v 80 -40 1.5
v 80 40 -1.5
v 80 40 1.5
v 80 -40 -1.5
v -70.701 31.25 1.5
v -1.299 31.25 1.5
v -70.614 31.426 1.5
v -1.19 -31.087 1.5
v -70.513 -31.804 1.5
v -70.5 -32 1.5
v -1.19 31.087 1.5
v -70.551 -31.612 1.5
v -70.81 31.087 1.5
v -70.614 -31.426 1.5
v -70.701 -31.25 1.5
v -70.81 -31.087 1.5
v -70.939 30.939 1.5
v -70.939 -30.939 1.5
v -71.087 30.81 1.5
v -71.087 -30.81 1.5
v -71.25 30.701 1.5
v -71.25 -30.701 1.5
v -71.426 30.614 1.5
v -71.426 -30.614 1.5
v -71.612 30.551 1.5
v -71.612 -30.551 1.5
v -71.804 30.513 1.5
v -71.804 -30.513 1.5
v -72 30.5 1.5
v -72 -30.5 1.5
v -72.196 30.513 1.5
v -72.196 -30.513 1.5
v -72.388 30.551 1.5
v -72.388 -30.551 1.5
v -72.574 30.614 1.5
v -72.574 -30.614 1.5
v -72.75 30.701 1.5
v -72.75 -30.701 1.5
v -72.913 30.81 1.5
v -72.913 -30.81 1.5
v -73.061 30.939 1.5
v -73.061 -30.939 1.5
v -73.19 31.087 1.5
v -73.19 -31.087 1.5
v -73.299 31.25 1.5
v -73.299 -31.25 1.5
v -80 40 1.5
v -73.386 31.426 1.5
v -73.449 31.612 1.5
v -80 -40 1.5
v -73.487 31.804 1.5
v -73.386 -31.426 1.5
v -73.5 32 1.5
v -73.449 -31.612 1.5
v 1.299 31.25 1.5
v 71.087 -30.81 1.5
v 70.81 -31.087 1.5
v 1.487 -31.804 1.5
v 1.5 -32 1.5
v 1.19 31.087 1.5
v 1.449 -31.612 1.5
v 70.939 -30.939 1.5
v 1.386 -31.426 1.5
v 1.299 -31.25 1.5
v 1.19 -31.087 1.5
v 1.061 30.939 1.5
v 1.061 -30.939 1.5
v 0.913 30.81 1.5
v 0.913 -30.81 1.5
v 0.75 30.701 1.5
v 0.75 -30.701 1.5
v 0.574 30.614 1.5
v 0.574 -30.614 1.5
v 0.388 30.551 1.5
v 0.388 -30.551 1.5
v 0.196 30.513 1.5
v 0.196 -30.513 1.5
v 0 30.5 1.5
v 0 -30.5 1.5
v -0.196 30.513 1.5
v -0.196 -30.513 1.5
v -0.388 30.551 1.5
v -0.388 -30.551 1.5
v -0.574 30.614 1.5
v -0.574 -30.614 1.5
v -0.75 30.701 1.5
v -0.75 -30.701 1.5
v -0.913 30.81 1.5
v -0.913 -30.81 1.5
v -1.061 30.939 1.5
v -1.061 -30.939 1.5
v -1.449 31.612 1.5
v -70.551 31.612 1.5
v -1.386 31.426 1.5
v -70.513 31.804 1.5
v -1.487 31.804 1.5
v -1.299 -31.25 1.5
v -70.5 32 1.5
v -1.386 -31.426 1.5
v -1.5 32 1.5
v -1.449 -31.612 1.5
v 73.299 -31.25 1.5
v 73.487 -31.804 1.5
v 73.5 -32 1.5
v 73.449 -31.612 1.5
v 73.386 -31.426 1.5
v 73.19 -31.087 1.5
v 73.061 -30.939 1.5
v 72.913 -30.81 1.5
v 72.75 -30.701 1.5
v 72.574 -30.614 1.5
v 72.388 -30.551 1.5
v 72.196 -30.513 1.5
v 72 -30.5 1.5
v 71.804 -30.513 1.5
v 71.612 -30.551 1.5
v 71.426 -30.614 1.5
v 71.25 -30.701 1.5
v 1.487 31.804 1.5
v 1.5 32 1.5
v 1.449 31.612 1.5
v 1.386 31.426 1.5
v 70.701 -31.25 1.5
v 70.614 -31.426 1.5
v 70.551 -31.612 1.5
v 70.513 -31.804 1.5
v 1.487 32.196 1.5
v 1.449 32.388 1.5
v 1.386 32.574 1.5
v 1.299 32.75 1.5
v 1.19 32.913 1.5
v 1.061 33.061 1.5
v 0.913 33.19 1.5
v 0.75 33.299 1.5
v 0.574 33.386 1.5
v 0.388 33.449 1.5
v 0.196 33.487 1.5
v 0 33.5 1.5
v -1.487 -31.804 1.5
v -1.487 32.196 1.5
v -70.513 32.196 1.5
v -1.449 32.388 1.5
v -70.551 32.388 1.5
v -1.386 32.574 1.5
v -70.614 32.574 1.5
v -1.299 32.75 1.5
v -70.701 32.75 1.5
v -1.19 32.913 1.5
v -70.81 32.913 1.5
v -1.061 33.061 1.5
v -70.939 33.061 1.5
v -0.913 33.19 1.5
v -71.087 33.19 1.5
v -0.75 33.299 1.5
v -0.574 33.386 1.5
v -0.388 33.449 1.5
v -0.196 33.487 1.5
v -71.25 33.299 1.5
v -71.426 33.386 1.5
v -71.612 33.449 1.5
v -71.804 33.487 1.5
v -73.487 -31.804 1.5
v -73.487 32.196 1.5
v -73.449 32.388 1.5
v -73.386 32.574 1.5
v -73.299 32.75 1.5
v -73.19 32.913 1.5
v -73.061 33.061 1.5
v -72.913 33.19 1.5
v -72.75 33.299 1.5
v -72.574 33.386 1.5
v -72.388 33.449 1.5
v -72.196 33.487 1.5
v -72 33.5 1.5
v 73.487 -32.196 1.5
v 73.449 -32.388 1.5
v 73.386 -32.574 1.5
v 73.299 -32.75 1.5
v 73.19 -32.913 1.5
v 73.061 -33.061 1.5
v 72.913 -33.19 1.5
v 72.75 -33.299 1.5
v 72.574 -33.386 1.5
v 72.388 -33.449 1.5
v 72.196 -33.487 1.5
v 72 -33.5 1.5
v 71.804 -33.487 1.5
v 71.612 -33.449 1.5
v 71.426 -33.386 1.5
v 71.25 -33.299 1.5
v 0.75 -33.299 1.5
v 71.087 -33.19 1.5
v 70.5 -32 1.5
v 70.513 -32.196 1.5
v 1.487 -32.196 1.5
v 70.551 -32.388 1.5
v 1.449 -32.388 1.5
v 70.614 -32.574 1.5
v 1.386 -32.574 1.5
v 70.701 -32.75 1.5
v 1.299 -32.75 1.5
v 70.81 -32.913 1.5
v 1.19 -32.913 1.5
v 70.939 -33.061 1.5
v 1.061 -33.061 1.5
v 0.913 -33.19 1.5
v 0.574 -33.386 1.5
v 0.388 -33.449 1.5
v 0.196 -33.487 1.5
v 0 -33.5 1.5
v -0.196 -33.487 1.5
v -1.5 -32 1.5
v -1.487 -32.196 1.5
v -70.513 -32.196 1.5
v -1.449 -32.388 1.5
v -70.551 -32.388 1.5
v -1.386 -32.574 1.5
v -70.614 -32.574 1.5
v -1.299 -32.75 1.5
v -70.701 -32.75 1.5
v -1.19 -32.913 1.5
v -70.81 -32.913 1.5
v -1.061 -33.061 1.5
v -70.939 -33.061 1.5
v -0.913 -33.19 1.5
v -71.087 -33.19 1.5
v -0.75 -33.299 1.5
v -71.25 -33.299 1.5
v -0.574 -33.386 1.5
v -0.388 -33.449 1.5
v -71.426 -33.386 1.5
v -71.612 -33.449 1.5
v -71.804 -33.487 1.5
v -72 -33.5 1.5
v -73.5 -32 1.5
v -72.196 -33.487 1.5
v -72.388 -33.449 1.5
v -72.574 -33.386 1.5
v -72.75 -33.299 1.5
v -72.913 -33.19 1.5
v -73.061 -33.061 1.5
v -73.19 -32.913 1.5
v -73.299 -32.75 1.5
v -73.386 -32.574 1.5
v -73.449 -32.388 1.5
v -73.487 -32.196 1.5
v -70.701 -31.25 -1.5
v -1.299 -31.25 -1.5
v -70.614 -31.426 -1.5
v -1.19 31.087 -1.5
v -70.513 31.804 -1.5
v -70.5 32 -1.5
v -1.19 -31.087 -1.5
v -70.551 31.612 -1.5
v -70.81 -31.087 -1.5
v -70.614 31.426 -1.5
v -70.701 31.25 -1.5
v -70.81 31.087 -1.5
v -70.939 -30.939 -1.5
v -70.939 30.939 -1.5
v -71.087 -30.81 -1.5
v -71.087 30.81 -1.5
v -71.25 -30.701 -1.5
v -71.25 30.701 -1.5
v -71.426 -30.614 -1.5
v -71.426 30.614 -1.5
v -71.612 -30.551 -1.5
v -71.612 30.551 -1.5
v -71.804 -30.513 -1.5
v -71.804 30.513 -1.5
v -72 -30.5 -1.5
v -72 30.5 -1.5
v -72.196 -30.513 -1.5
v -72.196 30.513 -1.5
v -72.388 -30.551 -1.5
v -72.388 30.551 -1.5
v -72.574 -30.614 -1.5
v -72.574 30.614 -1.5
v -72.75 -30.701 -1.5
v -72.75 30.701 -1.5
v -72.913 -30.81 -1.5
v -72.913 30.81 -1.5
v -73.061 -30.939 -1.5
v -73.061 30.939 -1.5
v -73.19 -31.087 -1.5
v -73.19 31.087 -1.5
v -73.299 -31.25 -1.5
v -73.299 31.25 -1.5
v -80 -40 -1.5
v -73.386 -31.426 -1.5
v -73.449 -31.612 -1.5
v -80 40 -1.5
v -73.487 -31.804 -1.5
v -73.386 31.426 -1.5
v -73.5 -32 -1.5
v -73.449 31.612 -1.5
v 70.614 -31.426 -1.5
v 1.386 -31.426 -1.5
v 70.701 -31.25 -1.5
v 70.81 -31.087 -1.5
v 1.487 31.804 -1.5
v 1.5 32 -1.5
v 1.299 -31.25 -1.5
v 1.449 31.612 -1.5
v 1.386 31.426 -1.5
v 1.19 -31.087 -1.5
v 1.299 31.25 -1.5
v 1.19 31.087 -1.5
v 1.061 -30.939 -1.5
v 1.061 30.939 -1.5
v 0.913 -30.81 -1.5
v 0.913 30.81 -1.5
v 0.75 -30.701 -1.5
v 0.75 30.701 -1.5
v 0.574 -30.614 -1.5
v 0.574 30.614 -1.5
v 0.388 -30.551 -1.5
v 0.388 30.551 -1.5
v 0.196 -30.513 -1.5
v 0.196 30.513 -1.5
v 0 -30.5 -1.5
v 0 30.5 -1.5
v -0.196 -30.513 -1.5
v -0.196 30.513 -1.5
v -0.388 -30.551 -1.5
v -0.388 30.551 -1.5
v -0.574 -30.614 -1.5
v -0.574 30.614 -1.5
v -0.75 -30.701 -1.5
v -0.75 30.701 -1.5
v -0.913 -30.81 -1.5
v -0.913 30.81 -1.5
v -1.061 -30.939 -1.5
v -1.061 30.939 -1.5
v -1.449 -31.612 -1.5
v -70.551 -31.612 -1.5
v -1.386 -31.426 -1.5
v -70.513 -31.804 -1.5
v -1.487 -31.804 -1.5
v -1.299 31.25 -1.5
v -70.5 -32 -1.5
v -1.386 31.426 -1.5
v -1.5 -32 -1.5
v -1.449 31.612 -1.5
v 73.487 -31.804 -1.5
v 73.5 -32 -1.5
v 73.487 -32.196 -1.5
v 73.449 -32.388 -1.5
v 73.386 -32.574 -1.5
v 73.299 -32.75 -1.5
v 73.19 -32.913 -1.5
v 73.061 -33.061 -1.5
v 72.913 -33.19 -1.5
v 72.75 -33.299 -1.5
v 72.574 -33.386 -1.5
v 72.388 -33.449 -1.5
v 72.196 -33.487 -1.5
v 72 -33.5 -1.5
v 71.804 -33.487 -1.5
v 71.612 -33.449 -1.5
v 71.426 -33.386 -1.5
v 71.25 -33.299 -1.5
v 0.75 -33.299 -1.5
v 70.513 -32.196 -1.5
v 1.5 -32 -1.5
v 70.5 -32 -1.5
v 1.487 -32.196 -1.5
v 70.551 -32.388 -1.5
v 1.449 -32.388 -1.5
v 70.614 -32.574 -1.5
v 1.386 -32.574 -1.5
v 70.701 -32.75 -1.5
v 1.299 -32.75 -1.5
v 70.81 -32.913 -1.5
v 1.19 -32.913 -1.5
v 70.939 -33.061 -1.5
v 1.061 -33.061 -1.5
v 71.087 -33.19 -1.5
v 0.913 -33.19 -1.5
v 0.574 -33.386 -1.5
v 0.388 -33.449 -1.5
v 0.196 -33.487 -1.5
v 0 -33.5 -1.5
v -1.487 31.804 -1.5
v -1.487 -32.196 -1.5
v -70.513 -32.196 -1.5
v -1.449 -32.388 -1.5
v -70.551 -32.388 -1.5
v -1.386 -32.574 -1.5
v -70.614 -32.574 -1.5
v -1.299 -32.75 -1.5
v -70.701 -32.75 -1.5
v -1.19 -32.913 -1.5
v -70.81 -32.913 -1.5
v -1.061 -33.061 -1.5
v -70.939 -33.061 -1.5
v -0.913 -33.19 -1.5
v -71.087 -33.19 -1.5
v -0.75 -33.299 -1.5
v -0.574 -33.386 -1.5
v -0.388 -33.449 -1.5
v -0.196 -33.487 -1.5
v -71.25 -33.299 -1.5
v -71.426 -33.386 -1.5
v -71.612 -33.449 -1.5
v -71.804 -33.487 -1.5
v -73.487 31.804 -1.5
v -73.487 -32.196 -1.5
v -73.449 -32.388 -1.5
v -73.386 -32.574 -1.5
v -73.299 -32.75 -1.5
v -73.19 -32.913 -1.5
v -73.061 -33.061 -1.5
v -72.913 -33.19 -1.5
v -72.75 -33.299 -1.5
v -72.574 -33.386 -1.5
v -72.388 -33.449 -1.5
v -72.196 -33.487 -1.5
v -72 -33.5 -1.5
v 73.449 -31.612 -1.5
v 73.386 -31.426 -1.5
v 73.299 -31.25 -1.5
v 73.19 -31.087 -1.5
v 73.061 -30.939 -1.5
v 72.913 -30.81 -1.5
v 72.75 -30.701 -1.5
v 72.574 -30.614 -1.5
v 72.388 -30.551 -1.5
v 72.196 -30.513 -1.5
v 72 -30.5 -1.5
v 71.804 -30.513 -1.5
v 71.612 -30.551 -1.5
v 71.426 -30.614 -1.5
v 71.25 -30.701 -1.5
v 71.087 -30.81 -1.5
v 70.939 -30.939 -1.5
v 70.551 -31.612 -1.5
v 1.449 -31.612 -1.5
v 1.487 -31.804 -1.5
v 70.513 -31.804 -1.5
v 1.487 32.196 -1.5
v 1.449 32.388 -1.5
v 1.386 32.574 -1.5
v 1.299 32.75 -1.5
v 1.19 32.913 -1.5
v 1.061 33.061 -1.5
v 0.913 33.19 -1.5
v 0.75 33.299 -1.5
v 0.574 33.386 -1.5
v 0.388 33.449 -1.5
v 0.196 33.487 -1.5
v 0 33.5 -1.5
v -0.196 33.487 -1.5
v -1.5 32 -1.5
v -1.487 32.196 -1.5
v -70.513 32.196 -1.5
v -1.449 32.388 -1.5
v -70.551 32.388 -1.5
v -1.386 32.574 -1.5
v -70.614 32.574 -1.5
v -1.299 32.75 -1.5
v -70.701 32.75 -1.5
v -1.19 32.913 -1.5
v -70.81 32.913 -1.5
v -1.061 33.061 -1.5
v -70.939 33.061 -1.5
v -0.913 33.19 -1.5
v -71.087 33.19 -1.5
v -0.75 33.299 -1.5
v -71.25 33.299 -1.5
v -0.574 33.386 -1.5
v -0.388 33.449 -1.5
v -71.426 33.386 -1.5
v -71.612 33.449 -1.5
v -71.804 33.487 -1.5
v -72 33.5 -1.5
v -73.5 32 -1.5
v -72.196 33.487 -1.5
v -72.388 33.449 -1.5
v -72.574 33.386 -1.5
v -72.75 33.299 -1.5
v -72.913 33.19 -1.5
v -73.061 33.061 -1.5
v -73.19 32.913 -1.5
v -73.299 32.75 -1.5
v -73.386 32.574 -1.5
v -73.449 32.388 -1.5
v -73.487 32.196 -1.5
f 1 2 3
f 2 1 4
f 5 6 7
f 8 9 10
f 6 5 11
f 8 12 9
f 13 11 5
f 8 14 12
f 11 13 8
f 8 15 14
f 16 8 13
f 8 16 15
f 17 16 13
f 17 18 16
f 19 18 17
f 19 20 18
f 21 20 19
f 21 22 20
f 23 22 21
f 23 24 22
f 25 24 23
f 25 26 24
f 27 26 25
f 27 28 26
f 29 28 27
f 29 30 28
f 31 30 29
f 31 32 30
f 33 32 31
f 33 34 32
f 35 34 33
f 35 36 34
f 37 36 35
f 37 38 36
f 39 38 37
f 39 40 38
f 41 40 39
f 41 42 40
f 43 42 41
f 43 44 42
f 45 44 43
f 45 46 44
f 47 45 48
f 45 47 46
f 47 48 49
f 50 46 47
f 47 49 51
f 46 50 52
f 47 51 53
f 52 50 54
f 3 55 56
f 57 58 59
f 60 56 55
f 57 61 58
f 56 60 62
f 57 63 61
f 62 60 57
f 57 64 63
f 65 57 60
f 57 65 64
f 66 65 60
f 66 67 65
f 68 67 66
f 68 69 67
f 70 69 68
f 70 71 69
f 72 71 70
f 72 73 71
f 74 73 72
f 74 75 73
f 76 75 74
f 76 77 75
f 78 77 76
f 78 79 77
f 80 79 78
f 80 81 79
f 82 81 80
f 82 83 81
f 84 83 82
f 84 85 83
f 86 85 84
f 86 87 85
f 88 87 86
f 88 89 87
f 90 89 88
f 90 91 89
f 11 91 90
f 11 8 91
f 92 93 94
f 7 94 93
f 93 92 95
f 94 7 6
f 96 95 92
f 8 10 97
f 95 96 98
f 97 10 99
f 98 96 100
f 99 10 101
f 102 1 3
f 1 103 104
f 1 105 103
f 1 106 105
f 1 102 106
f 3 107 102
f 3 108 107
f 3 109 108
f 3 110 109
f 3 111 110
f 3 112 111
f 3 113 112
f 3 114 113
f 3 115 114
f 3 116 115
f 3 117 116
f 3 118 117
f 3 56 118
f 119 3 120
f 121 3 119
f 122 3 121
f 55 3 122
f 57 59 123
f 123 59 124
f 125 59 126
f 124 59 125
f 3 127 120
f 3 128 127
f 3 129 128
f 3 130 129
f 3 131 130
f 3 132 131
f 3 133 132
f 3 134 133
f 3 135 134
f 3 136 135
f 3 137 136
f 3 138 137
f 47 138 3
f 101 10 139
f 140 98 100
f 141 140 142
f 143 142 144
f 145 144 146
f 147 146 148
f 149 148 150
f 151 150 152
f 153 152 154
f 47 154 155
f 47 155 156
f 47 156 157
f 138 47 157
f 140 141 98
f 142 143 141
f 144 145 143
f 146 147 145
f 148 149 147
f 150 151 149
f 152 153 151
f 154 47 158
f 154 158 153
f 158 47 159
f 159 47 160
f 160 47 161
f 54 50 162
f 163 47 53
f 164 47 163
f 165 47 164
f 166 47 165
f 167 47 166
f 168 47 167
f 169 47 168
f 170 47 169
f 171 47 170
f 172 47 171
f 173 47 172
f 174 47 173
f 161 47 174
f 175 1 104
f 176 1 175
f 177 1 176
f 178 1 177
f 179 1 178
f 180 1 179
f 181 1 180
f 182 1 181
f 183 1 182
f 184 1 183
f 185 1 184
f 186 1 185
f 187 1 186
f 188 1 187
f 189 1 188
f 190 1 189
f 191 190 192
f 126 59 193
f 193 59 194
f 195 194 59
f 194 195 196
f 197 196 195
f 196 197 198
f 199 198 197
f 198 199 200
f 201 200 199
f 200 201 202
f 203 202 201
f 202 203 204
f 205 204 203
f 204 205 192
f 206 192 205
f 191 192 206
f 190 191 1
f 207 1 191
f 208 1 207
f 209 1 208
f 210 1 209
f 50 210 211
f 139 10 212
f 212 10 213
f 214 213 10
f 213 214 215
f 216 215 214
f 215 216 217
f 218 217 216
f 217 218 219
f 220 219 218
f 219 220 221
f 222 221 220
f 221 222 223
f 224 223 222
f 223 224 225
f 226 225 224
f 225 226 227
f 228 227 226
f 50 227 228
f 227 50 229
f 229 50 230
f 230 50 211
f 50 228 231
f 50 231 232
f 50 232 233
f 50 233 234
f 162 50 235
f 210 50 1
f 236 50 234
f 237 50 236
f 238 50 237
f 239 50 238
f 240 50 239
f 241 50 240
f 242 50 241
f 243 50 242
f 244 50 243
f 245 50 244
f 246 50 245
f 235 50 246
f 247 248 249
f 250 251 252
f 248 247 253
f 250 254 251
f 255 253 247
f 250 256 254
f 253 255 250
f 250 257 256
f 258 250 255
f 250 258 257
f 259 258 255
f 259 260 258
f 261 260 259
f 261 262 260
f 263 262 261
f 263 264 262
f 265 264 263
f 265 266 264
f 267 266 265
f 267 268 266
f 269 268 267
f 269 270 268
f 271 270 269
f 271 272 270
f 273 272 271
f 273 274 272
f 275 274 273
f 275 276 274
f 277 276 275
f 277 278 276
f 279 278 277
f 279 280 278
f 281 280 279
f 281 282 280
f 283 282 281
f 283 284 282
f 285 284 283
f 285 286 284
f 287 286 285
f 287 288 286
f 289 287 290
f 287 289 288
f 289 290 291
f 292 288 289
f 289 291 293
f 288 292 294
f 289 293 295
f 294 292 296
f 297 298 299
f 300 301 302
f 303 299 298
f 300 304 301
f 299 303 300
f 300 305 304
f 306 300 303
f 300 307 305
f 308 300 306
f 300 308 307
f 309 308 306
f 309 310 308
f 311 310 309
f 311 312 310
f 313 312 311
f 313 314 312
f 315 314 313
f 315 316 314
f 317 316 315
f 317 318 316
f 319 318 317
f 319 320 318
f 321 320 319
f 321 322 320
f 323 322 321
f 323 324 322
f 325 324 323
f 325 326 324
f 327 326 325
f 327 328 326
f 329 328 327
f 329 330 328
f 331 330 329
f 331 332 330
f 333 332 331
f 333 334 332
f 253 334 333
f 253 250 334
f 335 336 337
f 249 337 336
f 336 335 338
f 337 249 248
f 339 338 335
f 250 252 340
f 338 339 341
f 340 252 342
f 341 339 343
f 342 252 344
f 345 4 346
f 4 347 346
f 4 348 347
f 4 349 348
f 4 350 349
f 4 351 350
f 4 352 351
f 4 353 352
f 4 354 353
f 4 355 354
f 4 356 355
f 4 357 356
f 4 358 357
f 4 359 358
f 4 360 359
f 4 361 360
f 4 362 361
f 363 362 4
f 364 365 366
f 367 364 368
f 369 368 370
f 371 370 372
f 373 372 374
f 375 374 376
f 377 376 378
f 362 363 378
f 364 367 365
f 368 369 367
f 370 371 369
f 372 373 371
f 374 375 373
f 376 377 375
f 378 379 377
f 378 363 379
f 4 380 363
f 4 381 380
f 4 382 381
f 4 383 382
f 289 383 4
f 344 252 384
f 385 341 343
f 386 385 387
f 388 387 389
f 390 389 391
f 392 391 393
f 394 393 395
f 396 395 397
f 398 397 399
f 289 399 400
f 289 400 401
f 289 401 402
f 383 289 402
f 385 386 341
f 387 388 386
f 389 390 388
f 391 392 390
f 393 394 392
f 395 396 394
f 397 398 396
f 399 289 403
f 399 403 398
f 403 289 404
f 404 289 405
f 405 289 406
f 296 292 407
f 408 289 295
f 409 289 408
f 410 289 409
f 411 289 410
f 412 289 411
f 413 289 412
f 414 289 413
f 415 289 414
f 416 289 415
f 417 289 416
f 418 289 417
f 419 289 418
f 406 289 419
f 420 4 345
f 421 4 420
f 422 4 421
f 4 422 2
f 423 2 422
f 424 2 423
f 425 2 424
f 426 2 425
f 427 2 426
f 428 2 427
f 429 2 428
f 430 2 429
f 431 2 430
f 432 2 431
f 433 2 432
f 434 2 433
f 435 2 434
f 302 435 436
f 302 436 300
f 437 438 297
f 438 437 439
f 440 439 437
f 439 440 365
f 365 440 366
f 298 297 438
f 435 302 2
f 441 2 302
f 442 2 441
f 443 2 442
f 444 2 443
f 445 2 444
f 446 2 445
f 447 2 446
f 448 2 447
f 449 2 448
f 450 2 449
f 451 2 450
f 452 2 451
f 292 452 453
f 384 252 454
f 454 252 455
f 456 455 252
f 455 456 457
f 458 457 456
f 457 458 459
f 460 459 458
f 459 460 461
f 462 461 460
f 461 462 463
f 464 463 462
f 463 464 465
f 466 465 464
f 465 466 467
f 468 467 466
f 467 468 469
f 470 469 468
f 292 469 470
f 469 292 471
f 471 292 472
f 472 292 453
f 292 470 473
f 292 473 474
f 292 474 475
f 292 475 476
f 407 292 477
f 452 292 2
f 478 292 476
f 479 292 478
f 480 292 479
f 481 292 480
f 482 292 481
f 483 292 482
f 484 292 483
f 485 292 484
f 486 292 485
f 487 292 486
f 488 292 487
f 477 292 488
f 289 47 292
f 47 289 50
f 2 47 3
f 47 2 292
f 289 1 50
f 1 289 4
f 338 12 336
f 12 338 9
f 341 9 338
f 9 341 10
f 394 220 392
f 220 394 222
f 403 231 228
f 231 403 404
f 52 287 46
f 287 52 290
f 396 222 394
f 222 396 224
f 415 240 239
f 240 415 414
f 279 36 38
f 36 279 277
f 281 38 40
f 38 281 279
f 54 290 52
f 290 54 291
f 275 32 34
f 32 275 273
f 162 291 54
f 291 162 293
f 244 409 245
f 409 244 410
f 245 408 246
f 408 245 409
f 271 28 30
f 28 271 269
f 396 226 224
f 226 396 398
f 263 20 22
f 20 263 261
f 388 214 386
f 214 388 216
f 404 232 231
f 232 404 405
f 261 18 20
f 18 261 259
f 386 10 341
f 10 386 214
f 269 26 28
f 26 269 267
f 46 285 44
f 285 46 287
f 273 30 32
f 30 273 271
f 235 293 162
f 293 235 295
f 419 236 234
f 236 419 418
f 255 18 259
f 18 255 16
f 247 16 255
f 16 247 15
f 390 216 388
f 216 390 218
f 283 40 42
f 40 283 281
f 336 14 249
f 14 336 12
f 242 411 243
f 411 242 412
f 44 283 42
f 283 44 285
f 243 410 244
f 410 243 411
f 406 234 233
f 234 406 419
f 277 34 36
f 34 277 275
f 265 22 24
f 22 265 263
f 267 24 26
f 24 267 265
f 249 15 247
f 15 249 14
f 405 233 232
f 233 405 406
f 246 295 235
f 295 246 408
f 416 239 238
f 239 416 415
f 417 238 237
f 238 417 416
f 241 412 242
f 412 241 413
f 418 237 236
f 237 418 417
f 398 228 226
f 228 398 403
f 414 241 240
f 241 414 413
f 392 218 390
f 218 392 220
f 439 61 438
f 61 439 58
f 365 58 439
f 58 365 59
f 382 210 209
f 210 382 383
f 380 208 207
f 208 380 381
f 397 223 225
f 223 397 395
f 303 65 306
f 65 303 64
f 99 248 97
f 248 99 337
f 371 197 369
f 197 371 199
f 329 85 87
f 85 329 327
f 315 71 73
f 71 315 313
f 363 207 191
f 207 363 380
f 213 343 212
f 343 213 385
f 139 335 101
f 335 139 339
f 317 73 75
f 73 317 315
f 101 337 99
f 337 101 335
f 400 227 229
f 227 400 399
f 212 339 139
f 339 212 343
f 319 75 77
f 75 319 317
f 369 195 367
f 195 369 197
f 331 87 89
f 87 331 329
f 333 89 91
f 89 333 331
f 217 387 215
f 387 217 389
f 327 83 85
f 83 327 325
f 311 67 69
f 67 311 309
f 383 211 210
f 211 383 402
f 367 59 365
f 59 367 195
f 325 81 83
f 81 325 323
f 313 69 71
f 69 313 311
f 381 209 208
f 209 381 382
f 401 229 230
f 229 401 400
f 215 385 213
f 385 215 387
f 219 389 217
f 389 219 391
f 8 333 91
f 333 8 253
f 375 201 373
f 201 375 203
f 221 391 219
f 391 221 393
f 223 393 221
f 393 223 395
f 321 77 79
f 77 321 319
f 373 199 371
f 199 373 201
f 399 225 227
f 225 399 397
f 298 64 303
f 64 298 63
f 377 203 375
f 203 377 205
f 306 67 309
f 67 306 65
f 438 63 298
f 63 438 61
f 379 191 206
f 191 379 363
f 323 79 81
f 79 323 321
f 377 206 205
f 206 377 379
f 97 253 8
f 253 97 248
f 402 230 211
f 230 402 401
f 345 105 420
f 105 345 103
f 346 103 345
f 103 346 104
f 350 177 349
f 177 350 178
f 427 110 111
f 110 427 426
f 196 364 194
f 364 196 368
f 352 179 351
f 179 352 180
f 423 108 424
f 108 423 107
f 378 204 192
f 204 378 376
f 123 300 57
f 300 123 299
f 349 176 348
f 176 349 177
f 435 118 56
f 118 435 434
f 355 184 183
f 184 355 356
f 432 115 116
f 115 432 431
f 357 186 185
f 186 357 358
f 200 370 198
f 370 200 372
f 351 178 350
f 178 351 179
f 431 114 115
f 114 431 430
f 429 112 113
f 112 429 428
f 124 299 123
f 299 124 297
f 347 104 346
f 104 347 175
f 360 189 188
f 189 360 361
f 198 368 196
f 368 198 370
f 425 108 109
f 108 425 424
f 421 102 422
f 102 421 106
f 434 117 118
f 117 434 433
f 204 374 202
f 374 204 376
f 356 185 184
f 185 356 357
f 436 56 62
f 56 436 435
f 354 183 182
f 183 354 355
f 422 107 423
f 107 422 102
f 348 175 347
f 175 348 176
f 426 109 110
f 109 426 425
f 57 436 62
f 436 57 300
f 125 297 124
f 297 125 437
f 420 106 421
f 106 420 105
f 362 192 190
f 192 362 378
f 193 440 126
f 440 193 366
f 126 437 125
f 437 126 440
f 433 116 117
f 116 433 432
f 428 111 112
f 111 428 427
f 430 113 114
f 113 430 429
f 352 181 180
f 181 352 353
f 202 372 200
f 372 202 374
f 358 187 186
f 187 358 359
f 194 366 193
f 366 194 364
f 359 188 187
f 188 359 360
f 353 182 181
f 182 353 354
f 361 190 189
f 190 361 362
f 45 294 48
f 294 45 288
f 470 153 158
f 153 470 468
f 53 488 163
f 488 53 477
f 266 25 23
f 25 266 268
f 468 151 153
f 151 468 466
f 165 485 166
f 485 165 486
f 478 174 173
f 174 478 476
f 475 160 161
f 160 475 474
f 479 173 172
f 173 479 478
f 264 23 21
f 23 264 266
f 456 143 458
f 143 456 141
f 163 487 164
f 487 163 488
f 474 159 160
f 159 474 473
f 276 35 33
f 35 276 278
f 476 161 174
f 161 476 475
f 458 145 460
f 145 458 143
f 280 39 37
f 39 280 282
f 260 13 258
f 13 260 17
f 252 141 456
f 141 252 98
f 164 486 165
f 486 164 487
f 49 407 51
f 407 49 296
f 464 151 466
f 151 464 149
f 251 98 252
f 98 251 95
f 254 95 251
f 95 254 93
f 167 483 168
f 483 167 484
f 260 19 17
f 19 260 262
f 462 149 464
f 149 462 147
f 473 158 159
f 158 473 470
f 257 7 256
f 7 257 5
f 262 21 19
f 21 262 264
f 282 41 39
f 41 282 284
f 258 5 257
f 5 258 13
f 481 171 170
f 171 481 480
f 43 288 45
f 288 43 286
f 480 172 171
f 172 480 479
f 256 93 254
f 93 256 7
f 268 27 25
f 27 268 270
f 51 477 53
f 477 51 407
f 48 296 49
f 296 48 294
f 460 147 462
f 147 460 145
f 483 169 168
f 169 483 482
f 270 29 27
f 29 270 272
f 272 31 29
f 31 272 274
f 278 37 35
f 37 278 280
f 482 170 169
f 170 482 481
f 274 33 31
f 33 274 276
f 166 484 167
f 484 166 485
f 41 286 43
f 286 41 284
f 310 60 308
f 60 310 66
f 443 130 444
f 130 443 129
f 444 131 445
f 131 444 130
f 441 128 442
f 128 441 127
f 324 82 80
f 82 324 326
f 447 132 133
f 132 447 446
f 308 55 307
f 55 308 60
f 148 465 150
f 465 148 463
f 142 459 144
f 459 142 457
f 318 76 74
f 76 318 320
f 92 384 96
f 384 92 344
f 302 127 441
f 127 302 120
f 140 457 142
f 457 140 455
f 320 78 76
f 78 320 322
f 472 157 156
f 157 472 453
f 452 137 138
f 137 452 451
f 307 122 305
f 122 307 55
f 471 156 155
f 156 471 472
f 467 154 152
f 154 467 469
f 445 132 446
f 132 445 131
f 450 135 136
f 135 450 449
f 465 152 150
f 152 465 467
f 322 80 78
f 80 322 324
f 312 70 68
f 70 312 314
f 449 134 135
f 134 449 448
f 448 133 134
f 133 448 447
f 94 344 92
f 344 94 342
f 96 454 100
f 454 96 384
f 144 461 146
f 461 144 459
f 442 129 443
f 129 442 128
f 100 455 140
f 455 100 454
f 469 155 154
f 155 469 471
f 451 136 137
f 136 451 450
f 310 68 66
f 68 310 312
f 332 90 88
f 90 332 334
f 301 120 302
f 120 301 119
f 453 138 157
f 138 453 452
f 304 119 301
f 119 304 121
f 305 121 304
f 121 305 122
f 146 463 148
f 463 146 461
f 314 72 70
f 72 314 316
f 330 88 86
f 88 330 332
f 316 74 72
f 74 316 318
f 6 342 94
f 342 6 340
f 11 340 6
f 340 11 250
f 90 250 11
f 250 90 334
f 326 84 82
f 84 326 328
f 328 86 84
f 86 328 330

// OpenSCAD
// ========================================
// a 16 x 8 x 0.3 cm plate with five 0.3 cm holes
// NeuroCAD canonical IR; dimensions are millimetres
// ========================================
$fn = 48;

difference() {
  cube(size=[160, 80, 3], center=true);
  translate([-72, -32, 0]) {
    cylinder(r=1.5, h=5, center=true);
  }
  translate([0, -32, 0]) {
    cylinder(r=1.5, h=5, center=true);
  }
  translate([72, -32, 0]) {
    cylinder(r=1.5, h=5, center=true);
  }
  translate([-72, 32, 0]) {
    cylinder(r=1.5, h=5, center=true);
  }
  translate([0, 32, 0]) {
    cylinder(r=1.5, h=5, center=true);
  }
}
